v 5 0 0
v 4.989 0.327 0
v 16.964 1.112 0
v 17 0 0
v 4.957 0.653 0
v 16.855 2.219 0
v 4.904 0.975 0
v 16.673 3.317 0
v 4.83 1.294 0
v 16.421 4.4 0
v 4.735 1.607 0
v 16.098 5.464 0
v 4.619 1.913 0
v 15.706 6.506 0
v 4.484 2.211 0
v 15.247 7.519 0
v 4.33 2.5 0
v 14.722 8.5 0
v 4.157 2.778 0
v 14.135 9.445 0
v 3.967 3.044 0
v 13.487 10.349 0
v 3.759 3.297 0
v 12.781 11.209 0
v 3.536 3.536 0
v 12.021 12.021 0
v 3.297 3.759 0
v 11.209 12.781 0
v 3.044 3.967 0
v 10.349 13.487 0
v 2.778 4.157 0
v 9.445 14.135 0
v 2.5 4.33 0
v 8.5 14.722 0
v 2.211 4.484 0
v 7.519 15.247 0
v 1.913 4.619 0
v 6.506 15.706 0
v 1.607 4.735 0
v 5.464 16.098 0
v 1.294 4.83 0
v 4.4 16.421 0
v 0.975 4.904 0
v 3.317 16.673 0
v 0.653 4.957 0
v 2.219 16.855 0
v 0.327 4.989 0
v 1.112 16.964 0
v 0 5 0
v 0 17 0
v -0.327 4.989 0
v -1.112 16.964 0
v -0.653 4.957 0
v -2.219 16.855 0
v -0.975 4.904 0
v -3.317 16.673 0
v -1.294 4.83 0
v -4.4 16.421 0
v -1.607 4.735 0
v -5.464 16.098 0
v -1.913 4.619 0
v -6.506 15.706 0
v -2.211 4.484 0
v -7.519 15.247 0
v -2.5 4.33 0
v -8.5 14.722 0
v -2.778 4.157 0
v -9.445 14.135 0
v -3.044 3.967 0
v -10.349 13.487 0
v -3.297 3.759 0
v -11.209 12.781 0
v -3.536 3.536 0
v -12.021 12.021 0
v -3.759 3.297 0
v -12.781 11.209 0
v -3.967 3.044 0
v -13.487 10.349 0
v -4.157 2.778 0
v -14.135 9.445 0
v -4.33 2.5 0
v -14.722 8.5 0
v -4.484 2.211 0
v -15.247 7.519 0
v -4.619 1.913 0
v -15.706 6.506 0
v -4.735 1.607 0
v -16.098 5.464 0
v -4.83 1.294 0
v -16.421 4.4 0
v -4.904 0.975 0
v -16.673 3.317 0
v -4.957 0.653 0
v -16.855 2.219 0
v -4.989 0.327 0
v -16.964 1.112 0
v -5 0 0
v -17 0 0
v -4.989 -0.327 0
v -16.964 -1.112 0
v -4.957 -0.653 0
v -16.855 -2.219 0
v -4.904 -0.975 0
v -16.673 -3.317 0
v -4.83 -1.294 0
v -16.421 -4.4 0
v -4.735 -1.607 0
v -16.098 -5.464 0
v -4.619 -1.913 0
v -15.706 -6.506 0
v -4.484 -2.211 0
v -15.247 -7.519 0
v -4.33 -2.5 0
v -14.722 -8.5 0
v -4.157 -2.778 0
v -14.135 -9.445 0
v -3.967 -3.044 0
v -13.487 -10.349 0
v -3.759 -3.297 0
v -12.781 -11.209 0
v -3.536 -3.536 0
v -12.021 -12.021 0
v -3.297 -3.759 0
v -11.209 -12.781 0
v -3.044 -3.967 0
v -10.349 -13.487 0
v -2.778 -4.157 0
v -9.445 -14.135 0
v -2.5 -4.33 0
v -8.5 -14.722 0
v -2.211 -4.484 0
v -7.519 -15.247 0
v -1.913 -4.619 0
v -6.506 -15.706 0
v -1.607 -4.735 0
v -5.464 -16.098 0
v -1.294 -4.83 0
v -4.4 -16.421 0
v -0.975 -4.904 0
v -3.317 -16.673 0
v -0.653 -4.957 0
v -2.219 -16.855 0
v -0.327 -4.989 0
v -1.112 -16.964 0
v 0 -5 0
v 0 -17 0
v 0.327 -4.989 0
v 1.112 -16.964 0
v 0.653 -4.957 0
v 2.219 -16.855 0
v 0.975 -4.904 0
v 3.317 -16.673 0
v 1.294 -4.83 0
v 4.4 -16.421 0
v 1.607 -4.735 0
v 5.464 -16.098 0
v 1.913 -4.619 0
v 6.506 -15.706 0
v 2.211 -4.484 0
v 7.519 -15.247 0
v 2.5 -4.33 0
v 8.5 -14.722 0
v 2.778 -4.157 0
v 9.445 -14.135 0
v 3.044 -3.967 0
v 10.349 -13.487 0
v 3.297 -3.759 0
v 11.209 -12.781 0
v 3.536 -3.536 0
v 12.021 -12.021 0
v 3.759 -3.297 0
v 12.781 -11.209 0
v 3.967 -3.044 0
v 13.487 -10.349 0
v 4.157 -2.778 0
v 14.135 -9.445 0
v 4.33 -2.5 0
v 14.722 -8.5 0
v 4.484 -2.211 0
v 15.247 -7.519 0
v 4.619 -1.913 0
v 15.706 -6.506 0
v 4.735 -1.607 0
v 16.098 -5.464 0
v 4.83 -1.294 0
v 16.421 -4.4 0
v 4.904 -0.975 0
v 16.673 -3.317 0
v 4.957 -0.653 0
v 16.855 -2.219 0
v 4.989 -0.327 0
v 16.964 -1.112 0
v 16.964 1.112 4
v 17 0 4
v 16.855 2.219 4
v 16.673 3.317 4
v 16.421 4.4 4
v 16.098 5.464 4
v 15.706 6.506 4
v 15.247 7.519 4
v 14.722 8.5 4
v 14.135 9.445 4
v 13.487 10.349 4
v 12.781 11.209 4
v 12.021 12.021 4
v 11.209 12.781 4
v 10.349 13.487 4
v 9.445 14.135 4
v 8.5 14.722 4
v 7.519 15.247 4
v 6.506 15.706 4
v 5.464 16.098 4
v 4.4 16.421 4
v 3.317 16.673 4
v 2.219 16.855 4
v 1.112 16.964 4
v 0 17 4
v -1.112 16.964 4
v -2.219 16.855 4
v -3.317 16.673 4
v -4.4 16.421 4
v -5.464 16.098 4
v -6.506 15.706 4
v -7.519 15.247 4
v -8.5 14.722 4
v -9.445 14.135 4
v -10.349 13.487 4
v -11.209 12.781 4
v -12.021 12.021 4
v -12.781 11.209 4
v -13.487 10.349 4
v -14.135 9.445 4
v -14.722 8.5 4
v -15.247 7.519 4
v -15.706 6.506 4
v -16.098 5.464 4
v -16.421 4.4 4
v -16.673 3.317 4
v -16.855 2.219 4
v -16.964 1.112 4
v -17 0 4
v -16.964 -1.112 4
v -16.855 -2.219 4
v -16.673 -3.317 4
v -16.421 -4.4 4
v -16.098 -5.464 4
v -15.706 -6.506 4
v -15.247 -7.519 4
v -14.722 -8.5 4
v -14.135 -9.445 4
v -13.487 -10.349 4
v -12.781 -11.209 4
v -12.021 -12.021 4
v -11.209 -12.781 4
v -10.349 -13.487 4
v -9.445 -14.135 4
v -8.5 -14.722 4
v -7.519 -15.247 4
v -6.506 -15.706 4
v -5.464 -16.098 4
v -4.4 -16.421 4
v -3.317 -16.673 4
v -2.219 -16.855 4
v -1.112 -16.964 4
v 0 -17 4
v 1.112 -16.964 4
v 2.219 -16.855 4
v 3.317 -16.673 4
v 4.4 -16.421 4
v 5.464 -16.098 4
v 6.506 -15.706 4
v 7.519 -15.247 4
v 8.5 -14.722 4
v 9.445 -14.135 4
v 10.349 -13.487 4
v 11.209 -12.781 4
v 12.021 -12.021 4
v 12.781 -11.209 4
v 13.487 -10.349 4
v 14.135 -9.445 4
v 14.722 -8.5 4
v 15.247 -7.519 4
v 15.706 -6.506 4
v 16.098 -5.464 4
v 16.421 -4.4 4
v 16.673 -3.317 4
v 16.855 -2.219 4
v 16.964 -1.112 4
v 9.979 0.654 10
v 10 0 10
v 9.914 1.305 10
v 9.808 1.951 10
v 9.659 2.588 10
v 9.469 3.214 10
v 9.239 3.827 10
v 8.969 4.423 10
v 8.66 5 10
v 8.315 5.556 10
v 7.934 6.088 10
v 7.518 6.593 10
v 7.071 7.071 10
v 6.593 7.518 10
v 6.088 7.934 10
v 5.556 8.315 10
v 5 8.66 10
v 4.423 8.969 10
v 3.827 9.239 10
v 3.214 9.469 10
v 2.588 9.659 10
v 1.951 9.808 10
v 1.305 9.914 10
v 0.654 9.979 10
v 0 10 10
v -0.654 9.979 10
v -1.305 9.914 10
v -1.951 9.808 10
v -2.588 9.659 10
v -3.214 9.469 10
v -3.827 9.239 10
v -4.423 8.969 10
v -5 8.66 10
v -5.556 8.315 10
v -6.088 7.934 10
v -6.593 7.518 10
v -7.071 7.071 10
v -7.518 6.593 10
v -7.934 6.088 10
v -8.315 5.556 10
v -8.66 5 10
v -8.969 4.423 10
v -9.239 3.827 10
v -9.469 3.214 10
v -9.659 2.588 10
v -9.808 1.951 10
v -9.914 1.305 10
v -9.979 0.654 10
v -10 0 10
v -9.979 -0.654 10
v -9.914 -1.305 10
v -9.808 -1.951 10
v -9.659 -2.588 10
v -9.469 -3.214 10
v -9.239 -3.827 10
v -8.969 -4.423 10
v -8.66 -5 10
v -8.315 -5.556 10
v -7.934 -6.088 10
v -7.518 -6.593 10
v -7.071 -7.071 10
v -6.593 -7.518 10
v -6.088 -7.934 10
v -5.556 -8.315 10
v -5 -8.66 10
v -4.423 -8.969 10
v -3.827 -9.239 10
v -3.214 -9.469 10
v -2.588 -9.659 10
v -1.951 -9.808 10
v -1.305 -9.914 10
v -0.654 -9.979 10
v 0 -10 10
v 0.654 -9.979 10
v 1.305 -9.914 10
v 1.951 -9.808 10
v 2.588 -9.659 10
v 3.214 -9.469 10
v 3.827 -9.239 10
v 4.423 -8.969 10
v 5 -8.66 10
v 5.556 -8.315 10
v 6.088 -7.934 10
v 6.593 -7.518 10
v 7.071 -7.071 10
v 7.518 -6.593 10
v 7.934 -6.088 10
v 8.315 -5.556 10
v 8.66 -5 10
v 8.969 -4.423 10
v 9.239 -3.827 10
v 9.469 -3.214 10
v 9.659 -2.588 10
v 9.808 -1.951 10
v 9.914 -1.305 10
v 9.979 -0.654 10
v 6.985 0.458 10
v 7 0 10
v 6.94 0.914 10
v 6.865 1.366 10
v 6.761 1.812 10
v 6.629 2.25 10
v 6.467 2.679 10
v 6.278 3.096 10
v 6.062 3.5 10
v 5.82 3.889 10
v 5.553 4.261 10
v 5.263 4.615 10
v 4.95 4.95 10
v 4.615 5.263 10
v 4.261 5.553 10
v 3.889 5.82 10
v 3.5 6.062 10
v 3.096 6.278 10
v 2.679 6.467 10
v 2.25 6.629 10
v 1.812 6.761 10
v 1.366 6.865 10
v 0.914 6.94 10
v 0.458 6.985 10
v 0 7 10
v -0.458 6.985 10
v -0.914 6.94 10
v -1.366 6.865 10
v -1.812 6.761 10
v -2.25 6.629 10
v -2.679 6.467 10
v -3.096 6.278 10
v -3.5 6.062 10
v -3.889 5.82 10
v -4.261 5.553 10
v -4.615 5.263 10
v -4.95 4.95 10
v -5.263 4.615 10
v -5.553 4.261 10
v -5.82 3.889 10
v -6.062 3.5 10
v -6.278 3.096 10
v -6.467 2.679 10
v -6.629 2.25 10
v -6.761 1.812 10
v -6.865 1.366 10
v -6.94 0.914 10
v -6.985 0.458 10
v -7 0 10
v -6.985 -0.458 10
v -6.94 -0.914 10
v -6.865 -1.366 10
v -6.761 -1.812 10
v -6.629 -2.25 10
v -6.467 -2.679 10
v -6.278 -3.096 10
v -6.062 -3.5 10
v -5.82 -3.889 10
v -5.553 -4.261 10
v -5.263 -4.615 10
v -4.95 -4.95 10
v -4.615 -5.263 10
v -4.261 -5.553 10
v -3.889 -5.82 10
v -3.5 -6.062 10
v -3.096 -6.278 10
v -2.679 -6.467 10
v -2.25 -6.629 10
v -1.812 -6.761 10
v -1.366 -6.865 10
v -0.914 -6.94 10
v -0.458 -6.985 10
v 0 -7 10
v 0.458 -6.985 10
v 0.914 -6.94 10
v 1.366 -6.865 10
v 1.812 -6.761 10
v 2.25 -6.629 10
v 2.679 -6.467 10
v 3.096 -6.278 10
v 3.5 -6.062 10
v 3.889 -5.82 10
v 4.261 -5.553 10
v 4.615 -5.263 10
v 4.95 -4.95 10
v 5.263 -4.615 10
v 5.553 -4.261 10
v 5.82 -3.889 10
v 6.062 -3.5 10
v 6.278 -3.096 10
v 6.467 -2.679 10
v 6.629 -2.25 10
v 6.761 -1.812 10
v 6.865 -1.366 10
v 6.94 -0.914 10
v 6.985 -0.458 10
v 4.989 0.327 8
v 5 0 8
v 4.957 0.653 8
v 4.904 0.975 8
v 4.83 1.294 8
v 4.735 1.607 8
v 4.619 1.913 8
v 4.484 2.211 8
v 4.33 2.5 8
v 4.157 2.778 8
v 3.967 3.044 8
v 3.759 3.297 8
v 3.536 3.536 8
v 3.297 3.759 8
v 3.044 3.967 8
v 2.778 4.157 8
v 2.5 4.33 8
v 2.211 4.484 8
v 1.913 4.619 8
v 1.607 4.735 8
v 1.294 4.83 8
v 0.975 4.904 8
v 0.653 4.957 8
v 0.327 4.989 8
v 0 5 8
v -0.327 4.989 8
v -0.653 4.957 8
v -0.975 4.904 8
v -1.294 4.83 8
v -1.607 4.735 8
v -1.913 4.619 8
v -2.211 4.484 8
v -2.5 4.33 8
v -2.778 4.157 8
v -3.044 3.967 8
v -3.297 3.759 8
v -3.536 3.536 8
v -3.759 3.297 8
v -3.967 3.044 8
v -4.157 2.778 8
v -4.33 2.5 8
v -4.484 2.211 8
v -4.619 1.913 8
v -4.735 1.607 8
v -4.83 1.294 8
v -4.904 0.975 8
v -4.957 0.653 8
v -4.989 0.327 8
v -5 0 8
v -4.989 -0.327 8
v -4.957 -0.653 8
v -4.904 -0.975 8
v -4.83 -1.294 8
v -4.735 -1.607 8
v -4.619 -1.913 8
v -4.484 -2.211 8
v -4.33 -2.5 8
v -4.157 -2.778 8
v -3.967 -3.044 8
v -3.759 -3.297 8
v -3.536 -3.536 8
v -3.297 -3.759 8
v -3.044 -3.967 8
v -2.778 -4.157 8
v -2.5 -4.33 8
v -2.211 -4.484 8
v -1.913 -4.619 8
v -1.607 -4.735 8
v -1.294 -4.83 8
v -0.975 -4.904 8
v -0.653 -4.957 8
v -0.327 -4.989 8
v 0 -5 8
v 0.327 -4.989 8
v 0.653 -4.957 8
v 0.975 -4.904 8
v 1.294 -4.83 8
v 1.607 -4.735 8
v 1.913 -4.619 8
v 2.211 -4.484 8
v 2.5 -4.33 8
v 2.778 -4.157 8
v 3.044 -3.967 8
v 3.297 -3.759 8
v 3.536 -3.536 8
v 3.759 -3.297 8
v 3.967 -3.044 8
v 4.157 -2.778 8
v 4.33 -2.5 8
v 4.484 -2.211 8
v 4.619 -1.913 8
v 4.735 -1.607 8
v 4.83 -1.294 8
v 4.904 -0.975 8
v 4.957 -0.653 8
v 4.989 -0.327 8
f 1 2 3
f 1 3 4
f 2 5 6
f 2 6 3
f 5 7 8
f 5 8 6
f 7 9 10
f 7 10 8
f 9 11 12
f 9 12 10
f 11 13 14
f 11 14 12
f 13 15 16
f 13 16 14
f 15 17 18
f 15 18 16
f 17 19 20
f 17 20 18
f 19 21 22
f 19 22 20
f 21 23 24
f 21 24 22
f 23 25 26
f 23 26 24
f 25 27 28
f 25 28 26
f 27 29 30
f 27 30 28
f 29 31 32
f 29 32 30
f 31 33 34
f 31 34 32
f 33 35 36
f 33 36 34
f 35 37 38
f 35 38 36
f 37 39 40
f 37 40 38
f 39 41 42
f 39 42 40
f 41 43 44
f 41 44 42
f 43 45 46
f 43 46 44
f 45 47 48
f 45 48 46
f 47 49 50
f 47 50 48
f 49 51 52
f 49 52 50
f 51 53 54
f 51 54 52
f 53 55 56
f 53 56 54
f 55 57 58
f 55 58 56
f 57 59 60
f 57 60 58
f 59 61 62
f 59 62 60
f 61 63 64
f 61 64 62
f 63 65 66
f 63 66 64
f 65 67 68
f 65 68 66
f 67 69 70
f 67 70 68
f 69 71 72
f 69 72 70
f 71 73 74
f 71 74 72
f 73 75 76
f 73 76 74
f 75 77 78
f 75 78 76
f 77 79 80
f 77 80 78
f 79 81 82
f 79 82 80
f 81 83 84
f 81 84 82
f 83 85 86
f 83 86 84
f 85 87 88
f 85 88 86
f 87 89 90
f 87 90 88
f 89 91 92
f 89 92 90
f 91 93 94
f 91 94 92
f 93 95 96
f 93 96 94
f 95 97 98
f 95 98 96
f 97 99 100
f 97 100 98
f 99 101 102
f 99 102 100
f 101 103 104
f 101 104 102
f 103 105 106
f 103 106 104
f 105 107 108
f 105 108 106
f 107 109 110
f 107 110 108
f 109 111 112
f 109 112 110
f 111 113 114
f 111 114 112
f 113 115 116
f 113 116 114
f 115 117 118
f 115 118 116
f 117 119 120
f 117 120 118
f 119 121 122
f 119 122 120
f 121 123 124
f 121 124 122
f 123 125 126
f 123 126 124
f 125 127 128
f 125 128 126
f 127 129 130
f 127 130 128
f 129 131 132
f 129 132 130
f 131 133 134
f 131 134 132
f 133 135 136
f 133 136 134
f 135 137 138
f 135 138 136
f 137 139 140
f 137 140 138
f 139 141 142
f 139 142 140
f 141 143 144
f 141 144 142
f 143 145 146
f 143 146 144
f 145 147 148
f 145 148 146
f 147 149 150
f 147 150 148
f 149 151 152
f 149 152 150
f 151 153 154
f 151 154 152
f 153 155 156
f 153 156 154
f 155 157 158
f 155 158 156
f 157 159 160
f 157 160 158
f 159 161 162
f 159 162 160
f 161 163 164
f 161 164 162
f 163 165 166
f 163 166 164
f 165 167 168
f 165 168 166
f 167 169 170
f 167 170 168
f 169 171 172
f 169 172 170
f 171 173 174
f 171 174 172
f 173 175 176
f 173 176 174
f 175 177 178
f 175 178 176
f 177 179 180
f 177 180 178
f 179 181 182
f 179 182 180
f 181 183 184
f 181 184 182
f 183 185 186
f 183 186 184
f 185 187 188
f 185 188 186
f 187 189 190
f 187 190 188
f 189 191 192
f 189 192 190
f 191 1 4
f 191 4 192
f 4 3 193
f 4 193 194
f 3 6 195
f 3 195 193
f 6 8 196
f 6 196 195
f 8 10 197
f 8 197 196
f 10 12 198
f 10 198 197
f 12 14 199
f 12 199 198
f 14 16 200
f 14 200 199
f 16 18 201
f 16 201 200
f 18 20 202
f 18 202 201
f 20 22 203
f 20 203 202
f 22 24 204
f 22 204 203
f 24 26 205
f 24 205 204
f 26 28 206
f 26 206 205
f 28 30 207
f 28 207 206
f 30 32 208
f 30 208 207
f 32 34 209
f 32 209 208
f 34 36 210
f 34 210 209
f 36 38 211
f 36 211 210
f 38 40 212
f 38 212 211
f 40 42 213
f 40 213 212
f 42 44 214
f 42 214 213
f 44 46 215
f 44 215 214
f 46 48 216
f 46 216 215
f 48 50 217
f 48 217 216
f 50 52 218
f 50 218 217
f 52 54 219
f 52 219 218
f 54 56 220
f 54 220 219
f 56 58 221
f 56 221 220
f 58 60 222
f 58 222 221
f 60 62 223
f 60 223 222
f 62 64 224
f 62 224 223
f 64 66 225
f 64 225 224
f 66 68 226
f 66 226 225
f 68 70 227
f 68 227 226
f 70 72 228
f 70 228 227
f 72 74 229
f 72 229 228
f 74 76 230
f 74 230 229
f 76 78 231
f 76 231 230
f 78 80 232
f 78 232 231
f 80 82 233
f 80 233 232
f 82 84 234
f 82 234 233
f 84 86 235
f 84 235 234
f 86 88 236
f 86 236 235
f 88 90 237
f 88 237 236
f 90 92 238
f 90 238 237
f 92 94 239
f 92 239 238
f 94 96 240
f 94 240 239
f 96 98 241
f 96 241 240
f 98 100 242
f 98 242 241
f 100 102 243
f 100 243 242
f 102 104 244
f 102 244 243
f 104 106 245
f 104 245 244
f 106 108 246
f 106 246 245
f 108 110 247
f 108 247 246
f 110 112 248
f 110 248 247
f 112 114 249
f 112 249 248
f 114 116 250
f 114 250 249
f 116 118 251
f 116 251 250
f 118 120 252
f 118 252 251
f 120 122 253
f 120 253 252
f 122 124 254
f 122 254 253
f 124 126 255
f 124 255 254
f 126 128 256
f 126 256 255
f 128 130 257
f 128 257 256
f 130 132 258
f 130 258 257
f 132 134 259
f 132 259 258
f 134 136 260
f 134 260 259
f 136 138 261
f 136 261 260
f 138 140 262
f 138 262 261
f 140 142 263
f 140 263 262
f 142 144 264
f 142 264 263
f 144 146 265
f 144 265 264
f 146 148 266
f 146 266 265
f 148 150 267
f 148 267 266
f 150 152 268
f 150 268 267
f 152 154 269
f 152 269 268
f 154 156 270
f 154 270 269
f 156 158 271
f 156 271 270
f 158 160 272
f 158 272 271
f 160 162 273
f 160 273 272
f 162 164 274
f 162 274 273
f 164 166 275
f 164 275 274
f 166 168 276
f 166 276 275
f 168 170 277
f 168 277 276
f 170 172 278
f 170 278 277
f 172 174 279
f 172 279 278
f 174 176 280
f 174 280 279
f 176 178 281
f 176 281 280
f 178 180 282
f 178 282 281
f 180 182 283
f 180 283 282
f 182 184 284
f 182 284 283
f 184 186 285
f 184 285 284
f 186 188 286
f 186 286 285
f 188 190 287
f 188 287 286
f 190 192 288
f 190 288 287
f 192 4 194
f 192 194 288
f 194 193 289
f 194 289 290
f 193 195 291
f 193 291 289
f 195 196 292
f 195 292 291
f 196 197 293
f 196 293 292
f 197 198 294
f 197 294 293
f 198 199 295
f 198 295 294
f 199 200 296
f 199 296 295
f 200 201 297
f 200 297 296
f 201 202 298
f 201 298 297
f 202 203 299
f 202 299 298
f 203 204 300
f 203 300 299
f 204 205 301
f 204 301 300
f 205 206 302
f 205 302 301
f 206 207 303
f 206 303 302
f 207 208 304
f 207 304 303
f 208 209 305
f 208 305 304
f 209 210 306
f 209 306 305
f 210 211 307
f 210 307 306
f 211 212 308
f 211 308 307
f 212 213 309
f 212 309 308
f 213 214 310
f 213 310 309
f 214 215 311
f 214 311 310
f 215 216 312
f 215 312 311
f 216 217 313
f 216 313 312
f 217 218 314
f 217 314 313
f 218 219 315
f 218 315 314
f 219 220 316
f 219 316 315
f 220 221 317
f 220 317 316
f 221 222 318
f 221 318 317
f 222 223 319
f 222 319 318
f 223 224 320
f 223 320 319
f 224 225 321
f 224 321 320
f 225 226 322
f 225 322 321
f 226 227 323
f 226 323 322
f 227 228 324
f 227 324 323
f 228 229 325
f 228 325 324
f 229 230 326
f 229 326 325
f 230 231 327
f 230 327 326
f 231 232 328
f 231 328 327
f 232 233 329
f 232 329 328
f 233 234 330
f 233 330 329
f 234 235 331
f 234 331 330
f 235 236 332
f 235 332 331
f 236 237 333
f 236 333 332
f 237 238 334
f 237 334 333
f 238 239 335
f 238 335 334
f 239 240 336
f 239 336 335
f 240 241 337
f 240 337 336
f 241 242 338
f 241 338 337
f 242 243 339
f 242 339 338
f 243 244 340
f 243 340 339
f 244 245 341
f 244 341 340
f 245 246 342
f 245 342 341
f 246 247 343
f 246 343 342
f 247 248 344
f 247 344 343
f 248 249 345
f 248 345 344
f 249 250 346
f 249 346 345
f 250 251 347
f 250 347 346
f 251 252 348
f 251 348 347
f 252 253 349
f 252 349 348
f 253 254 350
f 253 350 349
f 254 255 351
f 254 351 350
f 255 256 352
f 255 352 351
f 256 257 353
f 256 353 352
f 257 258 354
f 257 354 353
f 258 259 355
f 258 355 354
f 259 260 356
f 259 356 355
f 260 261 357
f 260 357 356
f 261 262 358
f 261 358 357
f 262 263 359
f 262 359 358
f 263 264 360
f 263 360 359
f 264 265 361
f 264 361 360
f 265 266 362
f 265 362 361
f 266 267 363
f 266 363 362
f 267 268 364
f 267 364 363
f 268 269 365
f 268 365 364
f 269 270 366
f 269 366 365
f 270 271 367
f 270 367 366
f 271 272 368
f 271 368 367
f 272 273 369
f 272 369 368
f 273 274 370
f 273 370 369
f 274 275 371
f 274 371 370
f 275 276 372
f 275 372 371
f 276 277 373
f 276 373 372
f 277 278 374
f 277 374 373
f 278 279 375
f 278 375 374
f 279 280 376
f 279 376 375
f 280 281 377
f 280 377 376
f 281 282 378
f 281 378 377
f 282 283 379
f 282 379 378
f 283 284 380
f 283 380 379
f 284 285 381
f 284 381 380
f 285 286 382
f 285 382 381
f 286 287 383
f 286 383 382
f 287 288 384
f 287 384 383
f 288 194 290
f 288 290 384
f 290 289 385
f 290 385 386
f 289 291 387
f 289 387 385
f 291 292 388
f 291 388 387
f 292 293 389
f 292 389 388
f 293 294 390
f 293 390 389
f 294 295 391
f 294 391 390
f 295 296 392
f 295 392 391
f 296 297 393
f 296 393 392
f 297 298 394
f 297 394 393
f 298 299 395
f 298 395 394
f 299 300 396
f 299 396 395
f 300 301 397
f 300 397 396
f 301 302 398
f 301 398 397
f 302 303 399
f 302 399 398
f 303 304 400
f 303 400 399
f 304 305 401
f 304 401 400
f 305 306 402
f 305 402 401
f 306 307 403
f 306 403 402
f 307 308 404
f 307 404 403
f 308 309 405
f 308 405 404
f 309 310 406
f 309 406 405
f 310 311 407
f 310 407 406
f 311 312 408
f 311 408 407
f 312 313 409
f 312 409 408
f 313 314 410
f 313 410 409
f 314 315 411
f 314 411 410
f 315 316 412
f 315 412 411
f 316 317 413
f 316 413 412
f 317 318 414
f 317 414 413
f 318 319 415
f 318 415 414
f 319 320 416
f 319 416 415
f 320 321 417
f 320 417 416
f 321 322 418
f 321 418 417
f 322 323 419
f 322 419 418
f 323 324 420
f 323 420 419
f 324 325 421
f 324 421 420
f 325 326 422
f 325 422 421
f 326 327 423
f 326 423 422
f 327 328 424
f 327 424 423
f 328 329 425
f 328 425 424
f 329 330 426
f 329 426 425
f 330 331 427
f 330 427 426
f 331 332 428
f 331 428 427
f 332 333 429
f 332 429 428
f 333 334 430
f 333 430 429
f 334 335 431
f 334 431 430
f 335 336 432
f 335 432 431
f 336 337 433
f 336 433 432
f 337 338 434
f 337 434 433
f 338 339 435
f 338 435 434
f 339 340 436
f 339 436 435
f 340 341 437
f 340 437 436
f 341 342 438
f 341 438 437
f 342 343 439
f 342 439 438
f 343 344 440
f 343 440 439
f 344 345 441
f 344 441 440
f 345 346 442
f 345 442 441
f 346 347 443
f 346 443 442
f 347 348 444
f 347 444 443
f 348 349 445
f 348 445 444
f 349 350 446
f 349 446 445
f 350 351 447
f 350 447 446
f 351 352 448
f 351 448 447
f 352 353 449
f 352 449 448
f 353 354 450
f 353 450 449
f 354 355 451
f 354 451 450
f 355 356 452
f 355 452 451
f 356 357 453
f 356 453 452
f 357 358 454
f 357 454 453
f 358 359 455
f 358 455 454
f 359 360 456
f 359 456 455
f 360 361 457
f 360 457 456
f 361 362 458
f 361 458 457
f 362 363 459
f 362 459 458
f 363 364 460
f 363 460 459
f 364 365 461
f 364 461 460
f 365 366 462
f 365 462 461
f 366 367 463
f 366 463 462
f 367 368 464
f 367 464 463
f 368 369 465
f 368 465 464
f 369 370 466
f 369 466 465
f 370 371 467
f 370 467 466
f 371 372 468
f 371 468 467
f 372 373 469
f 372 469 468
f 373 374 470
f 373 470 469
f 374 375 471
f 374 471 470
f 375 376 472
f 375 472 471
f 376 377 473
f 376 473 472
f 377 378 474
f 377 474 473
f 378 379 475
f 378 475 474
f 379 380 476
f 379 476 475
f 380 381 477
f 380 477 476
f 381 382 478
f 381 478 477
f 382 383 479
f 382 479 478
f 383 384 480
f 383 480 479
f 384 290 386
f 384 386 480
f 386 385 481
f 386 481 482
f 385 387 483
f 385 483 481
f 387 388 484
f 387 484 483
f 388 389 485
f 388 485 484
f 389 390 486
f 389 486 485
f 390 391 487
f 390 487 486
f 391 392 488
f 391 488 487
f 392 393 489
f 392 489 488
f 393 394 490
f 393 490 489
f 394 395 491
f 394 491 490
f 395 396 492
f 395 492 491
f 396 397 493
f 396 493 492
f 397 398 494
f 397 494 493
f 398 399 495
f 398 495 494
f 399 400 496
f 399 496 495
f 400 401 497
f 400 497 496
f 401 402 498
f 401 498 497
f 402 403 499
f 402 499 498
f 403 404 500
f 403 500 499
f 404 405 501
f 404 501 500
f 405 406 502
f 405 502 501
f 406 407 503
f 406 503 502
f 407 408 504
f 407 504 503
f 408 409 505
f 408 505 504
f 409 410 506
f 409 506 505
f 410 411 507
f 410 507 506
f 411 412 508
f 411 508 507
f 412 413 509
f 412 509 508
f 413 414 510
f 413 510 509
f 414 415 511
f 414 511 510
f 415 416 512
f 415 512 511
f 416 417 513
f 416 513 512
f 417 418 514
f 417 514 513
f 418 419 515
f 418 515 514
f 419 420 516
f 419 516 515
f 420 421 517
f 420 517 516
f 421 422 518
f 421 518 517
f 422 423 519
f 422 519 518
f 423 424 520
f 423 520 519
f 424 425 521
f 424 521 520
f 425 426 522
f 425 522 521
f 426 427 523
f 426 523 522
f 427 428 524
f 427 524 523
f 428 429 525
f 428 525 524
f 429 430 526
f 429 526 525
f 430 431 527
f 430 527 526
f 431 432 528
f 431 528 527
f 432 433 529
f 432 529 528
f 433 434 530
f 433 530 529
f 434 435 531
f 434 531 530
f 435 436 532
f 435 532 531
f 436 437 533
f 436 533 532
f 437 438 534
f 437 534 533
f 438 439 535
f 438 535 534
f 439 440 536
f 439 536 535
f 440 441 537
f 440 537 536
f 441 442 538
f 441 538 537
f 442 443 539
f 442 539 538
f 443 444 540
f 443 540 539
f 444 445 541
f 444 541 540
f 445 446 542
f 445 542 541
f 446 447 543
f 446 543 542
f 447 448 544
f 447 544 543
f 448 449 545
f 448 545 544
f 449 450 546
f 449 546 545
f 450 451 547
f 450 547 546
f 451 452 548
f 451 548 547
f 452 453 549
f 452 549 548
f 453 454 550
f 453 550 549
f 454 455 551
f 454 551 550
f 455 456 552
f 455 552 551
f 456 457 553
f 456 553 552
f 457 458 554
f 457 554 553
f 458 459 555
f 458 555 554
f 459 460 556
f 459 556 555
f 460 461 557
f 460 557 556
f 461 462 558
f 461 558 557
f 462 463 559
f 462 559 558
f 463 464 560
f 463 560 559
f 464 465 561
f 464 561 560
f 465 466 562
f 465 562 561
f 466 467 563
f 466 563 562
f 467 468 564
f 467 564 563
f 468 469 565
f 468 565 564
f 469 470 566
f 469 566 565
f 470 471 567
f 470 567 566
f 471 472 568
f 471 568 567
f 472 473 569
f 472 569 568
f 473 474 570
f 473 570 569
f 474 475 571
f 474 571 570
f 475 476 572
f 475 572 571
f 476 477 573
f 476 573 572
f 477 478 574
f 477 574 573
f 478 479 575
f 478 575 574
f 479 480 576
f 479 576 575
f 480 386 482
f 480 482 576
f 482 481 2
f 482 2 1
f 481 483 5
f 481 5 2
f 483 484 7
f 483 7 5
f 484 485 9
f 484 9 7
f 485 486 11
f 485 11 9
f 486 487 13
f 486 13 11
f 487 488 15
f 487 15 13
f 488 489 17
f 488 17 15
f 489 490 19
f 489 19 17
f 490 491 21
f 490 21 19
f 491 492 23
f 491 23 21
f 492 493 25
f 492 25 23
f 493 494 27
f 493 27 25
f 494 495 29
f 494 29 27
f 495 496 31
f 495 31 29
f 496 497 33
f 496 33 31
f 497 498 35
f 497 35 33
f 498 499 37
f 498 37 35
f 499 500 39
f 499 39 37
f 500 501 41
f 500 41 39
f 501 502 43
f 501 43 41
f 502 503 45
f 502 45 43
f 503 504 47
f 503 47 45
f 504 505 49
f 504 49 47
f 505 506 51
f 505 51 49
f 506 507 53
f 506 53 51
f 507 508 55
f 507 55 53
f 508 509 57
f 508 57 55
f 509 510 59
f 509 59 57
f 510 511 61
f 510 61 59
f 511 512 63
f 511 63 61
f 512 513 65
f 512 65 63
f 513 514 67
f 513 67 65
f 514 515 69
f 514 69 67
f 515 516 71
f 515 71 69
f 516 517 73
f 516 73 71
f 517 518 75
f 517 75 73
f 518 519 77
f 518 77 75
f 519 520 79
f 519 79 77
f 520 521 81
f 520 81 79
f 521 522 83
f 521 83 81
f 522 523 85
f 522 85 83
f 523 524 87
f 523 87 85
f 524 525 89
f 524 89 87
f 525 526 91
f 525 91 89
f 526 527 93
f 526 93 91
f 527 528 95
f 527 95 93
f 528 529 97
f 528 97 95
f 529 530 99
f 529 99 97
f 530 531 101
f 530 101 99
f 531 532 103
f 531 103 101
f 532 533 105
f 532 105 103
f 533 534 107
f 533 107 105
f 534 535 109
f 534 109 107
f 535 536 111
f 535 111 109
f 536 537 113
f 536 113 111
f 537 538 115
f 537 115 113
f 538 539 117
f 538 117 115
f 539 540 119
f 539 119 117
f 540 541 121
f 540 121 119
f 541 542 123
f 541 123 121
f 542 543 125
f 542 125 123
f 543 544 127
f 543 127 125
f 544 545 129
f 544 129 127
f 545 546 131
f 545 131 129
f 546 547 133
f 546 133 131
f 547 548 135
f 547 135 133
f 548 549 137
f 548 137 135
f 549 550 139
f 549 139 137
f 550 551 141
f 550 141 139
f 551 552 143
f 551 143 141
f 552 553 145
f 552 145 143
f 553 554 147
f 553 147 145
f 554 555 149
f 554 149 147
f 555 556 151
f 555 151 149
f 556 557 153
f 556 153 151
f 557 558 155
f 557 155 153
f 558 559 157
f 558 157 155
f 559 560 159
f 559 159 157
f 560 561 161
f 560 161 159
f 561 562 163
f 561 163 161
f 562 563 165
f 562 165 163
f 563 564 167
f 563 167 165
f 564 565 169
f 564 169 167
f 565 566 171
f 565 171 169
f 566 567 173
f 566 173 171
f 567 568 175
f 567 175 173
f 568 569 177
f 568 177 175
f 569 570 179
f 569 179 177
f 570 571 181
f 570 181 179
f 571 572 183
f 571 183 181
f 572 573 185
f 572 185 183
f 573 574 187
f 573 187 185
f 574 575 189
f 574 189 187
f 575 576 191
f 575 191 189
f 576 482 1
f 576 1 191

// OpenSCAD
// Original MechIntel educational model. CC0-1.0. Units: mm.
// Not a standardized or load-rated component.
$fn=96;
// Section points: [radius, height], mm. Edit to change the profile.
section=[[5, 0], [17, 0], [17, 4], [10, 10], [7, 10], [5, 8]];
rotate_extrude($fn=96) polygon(points=section);
